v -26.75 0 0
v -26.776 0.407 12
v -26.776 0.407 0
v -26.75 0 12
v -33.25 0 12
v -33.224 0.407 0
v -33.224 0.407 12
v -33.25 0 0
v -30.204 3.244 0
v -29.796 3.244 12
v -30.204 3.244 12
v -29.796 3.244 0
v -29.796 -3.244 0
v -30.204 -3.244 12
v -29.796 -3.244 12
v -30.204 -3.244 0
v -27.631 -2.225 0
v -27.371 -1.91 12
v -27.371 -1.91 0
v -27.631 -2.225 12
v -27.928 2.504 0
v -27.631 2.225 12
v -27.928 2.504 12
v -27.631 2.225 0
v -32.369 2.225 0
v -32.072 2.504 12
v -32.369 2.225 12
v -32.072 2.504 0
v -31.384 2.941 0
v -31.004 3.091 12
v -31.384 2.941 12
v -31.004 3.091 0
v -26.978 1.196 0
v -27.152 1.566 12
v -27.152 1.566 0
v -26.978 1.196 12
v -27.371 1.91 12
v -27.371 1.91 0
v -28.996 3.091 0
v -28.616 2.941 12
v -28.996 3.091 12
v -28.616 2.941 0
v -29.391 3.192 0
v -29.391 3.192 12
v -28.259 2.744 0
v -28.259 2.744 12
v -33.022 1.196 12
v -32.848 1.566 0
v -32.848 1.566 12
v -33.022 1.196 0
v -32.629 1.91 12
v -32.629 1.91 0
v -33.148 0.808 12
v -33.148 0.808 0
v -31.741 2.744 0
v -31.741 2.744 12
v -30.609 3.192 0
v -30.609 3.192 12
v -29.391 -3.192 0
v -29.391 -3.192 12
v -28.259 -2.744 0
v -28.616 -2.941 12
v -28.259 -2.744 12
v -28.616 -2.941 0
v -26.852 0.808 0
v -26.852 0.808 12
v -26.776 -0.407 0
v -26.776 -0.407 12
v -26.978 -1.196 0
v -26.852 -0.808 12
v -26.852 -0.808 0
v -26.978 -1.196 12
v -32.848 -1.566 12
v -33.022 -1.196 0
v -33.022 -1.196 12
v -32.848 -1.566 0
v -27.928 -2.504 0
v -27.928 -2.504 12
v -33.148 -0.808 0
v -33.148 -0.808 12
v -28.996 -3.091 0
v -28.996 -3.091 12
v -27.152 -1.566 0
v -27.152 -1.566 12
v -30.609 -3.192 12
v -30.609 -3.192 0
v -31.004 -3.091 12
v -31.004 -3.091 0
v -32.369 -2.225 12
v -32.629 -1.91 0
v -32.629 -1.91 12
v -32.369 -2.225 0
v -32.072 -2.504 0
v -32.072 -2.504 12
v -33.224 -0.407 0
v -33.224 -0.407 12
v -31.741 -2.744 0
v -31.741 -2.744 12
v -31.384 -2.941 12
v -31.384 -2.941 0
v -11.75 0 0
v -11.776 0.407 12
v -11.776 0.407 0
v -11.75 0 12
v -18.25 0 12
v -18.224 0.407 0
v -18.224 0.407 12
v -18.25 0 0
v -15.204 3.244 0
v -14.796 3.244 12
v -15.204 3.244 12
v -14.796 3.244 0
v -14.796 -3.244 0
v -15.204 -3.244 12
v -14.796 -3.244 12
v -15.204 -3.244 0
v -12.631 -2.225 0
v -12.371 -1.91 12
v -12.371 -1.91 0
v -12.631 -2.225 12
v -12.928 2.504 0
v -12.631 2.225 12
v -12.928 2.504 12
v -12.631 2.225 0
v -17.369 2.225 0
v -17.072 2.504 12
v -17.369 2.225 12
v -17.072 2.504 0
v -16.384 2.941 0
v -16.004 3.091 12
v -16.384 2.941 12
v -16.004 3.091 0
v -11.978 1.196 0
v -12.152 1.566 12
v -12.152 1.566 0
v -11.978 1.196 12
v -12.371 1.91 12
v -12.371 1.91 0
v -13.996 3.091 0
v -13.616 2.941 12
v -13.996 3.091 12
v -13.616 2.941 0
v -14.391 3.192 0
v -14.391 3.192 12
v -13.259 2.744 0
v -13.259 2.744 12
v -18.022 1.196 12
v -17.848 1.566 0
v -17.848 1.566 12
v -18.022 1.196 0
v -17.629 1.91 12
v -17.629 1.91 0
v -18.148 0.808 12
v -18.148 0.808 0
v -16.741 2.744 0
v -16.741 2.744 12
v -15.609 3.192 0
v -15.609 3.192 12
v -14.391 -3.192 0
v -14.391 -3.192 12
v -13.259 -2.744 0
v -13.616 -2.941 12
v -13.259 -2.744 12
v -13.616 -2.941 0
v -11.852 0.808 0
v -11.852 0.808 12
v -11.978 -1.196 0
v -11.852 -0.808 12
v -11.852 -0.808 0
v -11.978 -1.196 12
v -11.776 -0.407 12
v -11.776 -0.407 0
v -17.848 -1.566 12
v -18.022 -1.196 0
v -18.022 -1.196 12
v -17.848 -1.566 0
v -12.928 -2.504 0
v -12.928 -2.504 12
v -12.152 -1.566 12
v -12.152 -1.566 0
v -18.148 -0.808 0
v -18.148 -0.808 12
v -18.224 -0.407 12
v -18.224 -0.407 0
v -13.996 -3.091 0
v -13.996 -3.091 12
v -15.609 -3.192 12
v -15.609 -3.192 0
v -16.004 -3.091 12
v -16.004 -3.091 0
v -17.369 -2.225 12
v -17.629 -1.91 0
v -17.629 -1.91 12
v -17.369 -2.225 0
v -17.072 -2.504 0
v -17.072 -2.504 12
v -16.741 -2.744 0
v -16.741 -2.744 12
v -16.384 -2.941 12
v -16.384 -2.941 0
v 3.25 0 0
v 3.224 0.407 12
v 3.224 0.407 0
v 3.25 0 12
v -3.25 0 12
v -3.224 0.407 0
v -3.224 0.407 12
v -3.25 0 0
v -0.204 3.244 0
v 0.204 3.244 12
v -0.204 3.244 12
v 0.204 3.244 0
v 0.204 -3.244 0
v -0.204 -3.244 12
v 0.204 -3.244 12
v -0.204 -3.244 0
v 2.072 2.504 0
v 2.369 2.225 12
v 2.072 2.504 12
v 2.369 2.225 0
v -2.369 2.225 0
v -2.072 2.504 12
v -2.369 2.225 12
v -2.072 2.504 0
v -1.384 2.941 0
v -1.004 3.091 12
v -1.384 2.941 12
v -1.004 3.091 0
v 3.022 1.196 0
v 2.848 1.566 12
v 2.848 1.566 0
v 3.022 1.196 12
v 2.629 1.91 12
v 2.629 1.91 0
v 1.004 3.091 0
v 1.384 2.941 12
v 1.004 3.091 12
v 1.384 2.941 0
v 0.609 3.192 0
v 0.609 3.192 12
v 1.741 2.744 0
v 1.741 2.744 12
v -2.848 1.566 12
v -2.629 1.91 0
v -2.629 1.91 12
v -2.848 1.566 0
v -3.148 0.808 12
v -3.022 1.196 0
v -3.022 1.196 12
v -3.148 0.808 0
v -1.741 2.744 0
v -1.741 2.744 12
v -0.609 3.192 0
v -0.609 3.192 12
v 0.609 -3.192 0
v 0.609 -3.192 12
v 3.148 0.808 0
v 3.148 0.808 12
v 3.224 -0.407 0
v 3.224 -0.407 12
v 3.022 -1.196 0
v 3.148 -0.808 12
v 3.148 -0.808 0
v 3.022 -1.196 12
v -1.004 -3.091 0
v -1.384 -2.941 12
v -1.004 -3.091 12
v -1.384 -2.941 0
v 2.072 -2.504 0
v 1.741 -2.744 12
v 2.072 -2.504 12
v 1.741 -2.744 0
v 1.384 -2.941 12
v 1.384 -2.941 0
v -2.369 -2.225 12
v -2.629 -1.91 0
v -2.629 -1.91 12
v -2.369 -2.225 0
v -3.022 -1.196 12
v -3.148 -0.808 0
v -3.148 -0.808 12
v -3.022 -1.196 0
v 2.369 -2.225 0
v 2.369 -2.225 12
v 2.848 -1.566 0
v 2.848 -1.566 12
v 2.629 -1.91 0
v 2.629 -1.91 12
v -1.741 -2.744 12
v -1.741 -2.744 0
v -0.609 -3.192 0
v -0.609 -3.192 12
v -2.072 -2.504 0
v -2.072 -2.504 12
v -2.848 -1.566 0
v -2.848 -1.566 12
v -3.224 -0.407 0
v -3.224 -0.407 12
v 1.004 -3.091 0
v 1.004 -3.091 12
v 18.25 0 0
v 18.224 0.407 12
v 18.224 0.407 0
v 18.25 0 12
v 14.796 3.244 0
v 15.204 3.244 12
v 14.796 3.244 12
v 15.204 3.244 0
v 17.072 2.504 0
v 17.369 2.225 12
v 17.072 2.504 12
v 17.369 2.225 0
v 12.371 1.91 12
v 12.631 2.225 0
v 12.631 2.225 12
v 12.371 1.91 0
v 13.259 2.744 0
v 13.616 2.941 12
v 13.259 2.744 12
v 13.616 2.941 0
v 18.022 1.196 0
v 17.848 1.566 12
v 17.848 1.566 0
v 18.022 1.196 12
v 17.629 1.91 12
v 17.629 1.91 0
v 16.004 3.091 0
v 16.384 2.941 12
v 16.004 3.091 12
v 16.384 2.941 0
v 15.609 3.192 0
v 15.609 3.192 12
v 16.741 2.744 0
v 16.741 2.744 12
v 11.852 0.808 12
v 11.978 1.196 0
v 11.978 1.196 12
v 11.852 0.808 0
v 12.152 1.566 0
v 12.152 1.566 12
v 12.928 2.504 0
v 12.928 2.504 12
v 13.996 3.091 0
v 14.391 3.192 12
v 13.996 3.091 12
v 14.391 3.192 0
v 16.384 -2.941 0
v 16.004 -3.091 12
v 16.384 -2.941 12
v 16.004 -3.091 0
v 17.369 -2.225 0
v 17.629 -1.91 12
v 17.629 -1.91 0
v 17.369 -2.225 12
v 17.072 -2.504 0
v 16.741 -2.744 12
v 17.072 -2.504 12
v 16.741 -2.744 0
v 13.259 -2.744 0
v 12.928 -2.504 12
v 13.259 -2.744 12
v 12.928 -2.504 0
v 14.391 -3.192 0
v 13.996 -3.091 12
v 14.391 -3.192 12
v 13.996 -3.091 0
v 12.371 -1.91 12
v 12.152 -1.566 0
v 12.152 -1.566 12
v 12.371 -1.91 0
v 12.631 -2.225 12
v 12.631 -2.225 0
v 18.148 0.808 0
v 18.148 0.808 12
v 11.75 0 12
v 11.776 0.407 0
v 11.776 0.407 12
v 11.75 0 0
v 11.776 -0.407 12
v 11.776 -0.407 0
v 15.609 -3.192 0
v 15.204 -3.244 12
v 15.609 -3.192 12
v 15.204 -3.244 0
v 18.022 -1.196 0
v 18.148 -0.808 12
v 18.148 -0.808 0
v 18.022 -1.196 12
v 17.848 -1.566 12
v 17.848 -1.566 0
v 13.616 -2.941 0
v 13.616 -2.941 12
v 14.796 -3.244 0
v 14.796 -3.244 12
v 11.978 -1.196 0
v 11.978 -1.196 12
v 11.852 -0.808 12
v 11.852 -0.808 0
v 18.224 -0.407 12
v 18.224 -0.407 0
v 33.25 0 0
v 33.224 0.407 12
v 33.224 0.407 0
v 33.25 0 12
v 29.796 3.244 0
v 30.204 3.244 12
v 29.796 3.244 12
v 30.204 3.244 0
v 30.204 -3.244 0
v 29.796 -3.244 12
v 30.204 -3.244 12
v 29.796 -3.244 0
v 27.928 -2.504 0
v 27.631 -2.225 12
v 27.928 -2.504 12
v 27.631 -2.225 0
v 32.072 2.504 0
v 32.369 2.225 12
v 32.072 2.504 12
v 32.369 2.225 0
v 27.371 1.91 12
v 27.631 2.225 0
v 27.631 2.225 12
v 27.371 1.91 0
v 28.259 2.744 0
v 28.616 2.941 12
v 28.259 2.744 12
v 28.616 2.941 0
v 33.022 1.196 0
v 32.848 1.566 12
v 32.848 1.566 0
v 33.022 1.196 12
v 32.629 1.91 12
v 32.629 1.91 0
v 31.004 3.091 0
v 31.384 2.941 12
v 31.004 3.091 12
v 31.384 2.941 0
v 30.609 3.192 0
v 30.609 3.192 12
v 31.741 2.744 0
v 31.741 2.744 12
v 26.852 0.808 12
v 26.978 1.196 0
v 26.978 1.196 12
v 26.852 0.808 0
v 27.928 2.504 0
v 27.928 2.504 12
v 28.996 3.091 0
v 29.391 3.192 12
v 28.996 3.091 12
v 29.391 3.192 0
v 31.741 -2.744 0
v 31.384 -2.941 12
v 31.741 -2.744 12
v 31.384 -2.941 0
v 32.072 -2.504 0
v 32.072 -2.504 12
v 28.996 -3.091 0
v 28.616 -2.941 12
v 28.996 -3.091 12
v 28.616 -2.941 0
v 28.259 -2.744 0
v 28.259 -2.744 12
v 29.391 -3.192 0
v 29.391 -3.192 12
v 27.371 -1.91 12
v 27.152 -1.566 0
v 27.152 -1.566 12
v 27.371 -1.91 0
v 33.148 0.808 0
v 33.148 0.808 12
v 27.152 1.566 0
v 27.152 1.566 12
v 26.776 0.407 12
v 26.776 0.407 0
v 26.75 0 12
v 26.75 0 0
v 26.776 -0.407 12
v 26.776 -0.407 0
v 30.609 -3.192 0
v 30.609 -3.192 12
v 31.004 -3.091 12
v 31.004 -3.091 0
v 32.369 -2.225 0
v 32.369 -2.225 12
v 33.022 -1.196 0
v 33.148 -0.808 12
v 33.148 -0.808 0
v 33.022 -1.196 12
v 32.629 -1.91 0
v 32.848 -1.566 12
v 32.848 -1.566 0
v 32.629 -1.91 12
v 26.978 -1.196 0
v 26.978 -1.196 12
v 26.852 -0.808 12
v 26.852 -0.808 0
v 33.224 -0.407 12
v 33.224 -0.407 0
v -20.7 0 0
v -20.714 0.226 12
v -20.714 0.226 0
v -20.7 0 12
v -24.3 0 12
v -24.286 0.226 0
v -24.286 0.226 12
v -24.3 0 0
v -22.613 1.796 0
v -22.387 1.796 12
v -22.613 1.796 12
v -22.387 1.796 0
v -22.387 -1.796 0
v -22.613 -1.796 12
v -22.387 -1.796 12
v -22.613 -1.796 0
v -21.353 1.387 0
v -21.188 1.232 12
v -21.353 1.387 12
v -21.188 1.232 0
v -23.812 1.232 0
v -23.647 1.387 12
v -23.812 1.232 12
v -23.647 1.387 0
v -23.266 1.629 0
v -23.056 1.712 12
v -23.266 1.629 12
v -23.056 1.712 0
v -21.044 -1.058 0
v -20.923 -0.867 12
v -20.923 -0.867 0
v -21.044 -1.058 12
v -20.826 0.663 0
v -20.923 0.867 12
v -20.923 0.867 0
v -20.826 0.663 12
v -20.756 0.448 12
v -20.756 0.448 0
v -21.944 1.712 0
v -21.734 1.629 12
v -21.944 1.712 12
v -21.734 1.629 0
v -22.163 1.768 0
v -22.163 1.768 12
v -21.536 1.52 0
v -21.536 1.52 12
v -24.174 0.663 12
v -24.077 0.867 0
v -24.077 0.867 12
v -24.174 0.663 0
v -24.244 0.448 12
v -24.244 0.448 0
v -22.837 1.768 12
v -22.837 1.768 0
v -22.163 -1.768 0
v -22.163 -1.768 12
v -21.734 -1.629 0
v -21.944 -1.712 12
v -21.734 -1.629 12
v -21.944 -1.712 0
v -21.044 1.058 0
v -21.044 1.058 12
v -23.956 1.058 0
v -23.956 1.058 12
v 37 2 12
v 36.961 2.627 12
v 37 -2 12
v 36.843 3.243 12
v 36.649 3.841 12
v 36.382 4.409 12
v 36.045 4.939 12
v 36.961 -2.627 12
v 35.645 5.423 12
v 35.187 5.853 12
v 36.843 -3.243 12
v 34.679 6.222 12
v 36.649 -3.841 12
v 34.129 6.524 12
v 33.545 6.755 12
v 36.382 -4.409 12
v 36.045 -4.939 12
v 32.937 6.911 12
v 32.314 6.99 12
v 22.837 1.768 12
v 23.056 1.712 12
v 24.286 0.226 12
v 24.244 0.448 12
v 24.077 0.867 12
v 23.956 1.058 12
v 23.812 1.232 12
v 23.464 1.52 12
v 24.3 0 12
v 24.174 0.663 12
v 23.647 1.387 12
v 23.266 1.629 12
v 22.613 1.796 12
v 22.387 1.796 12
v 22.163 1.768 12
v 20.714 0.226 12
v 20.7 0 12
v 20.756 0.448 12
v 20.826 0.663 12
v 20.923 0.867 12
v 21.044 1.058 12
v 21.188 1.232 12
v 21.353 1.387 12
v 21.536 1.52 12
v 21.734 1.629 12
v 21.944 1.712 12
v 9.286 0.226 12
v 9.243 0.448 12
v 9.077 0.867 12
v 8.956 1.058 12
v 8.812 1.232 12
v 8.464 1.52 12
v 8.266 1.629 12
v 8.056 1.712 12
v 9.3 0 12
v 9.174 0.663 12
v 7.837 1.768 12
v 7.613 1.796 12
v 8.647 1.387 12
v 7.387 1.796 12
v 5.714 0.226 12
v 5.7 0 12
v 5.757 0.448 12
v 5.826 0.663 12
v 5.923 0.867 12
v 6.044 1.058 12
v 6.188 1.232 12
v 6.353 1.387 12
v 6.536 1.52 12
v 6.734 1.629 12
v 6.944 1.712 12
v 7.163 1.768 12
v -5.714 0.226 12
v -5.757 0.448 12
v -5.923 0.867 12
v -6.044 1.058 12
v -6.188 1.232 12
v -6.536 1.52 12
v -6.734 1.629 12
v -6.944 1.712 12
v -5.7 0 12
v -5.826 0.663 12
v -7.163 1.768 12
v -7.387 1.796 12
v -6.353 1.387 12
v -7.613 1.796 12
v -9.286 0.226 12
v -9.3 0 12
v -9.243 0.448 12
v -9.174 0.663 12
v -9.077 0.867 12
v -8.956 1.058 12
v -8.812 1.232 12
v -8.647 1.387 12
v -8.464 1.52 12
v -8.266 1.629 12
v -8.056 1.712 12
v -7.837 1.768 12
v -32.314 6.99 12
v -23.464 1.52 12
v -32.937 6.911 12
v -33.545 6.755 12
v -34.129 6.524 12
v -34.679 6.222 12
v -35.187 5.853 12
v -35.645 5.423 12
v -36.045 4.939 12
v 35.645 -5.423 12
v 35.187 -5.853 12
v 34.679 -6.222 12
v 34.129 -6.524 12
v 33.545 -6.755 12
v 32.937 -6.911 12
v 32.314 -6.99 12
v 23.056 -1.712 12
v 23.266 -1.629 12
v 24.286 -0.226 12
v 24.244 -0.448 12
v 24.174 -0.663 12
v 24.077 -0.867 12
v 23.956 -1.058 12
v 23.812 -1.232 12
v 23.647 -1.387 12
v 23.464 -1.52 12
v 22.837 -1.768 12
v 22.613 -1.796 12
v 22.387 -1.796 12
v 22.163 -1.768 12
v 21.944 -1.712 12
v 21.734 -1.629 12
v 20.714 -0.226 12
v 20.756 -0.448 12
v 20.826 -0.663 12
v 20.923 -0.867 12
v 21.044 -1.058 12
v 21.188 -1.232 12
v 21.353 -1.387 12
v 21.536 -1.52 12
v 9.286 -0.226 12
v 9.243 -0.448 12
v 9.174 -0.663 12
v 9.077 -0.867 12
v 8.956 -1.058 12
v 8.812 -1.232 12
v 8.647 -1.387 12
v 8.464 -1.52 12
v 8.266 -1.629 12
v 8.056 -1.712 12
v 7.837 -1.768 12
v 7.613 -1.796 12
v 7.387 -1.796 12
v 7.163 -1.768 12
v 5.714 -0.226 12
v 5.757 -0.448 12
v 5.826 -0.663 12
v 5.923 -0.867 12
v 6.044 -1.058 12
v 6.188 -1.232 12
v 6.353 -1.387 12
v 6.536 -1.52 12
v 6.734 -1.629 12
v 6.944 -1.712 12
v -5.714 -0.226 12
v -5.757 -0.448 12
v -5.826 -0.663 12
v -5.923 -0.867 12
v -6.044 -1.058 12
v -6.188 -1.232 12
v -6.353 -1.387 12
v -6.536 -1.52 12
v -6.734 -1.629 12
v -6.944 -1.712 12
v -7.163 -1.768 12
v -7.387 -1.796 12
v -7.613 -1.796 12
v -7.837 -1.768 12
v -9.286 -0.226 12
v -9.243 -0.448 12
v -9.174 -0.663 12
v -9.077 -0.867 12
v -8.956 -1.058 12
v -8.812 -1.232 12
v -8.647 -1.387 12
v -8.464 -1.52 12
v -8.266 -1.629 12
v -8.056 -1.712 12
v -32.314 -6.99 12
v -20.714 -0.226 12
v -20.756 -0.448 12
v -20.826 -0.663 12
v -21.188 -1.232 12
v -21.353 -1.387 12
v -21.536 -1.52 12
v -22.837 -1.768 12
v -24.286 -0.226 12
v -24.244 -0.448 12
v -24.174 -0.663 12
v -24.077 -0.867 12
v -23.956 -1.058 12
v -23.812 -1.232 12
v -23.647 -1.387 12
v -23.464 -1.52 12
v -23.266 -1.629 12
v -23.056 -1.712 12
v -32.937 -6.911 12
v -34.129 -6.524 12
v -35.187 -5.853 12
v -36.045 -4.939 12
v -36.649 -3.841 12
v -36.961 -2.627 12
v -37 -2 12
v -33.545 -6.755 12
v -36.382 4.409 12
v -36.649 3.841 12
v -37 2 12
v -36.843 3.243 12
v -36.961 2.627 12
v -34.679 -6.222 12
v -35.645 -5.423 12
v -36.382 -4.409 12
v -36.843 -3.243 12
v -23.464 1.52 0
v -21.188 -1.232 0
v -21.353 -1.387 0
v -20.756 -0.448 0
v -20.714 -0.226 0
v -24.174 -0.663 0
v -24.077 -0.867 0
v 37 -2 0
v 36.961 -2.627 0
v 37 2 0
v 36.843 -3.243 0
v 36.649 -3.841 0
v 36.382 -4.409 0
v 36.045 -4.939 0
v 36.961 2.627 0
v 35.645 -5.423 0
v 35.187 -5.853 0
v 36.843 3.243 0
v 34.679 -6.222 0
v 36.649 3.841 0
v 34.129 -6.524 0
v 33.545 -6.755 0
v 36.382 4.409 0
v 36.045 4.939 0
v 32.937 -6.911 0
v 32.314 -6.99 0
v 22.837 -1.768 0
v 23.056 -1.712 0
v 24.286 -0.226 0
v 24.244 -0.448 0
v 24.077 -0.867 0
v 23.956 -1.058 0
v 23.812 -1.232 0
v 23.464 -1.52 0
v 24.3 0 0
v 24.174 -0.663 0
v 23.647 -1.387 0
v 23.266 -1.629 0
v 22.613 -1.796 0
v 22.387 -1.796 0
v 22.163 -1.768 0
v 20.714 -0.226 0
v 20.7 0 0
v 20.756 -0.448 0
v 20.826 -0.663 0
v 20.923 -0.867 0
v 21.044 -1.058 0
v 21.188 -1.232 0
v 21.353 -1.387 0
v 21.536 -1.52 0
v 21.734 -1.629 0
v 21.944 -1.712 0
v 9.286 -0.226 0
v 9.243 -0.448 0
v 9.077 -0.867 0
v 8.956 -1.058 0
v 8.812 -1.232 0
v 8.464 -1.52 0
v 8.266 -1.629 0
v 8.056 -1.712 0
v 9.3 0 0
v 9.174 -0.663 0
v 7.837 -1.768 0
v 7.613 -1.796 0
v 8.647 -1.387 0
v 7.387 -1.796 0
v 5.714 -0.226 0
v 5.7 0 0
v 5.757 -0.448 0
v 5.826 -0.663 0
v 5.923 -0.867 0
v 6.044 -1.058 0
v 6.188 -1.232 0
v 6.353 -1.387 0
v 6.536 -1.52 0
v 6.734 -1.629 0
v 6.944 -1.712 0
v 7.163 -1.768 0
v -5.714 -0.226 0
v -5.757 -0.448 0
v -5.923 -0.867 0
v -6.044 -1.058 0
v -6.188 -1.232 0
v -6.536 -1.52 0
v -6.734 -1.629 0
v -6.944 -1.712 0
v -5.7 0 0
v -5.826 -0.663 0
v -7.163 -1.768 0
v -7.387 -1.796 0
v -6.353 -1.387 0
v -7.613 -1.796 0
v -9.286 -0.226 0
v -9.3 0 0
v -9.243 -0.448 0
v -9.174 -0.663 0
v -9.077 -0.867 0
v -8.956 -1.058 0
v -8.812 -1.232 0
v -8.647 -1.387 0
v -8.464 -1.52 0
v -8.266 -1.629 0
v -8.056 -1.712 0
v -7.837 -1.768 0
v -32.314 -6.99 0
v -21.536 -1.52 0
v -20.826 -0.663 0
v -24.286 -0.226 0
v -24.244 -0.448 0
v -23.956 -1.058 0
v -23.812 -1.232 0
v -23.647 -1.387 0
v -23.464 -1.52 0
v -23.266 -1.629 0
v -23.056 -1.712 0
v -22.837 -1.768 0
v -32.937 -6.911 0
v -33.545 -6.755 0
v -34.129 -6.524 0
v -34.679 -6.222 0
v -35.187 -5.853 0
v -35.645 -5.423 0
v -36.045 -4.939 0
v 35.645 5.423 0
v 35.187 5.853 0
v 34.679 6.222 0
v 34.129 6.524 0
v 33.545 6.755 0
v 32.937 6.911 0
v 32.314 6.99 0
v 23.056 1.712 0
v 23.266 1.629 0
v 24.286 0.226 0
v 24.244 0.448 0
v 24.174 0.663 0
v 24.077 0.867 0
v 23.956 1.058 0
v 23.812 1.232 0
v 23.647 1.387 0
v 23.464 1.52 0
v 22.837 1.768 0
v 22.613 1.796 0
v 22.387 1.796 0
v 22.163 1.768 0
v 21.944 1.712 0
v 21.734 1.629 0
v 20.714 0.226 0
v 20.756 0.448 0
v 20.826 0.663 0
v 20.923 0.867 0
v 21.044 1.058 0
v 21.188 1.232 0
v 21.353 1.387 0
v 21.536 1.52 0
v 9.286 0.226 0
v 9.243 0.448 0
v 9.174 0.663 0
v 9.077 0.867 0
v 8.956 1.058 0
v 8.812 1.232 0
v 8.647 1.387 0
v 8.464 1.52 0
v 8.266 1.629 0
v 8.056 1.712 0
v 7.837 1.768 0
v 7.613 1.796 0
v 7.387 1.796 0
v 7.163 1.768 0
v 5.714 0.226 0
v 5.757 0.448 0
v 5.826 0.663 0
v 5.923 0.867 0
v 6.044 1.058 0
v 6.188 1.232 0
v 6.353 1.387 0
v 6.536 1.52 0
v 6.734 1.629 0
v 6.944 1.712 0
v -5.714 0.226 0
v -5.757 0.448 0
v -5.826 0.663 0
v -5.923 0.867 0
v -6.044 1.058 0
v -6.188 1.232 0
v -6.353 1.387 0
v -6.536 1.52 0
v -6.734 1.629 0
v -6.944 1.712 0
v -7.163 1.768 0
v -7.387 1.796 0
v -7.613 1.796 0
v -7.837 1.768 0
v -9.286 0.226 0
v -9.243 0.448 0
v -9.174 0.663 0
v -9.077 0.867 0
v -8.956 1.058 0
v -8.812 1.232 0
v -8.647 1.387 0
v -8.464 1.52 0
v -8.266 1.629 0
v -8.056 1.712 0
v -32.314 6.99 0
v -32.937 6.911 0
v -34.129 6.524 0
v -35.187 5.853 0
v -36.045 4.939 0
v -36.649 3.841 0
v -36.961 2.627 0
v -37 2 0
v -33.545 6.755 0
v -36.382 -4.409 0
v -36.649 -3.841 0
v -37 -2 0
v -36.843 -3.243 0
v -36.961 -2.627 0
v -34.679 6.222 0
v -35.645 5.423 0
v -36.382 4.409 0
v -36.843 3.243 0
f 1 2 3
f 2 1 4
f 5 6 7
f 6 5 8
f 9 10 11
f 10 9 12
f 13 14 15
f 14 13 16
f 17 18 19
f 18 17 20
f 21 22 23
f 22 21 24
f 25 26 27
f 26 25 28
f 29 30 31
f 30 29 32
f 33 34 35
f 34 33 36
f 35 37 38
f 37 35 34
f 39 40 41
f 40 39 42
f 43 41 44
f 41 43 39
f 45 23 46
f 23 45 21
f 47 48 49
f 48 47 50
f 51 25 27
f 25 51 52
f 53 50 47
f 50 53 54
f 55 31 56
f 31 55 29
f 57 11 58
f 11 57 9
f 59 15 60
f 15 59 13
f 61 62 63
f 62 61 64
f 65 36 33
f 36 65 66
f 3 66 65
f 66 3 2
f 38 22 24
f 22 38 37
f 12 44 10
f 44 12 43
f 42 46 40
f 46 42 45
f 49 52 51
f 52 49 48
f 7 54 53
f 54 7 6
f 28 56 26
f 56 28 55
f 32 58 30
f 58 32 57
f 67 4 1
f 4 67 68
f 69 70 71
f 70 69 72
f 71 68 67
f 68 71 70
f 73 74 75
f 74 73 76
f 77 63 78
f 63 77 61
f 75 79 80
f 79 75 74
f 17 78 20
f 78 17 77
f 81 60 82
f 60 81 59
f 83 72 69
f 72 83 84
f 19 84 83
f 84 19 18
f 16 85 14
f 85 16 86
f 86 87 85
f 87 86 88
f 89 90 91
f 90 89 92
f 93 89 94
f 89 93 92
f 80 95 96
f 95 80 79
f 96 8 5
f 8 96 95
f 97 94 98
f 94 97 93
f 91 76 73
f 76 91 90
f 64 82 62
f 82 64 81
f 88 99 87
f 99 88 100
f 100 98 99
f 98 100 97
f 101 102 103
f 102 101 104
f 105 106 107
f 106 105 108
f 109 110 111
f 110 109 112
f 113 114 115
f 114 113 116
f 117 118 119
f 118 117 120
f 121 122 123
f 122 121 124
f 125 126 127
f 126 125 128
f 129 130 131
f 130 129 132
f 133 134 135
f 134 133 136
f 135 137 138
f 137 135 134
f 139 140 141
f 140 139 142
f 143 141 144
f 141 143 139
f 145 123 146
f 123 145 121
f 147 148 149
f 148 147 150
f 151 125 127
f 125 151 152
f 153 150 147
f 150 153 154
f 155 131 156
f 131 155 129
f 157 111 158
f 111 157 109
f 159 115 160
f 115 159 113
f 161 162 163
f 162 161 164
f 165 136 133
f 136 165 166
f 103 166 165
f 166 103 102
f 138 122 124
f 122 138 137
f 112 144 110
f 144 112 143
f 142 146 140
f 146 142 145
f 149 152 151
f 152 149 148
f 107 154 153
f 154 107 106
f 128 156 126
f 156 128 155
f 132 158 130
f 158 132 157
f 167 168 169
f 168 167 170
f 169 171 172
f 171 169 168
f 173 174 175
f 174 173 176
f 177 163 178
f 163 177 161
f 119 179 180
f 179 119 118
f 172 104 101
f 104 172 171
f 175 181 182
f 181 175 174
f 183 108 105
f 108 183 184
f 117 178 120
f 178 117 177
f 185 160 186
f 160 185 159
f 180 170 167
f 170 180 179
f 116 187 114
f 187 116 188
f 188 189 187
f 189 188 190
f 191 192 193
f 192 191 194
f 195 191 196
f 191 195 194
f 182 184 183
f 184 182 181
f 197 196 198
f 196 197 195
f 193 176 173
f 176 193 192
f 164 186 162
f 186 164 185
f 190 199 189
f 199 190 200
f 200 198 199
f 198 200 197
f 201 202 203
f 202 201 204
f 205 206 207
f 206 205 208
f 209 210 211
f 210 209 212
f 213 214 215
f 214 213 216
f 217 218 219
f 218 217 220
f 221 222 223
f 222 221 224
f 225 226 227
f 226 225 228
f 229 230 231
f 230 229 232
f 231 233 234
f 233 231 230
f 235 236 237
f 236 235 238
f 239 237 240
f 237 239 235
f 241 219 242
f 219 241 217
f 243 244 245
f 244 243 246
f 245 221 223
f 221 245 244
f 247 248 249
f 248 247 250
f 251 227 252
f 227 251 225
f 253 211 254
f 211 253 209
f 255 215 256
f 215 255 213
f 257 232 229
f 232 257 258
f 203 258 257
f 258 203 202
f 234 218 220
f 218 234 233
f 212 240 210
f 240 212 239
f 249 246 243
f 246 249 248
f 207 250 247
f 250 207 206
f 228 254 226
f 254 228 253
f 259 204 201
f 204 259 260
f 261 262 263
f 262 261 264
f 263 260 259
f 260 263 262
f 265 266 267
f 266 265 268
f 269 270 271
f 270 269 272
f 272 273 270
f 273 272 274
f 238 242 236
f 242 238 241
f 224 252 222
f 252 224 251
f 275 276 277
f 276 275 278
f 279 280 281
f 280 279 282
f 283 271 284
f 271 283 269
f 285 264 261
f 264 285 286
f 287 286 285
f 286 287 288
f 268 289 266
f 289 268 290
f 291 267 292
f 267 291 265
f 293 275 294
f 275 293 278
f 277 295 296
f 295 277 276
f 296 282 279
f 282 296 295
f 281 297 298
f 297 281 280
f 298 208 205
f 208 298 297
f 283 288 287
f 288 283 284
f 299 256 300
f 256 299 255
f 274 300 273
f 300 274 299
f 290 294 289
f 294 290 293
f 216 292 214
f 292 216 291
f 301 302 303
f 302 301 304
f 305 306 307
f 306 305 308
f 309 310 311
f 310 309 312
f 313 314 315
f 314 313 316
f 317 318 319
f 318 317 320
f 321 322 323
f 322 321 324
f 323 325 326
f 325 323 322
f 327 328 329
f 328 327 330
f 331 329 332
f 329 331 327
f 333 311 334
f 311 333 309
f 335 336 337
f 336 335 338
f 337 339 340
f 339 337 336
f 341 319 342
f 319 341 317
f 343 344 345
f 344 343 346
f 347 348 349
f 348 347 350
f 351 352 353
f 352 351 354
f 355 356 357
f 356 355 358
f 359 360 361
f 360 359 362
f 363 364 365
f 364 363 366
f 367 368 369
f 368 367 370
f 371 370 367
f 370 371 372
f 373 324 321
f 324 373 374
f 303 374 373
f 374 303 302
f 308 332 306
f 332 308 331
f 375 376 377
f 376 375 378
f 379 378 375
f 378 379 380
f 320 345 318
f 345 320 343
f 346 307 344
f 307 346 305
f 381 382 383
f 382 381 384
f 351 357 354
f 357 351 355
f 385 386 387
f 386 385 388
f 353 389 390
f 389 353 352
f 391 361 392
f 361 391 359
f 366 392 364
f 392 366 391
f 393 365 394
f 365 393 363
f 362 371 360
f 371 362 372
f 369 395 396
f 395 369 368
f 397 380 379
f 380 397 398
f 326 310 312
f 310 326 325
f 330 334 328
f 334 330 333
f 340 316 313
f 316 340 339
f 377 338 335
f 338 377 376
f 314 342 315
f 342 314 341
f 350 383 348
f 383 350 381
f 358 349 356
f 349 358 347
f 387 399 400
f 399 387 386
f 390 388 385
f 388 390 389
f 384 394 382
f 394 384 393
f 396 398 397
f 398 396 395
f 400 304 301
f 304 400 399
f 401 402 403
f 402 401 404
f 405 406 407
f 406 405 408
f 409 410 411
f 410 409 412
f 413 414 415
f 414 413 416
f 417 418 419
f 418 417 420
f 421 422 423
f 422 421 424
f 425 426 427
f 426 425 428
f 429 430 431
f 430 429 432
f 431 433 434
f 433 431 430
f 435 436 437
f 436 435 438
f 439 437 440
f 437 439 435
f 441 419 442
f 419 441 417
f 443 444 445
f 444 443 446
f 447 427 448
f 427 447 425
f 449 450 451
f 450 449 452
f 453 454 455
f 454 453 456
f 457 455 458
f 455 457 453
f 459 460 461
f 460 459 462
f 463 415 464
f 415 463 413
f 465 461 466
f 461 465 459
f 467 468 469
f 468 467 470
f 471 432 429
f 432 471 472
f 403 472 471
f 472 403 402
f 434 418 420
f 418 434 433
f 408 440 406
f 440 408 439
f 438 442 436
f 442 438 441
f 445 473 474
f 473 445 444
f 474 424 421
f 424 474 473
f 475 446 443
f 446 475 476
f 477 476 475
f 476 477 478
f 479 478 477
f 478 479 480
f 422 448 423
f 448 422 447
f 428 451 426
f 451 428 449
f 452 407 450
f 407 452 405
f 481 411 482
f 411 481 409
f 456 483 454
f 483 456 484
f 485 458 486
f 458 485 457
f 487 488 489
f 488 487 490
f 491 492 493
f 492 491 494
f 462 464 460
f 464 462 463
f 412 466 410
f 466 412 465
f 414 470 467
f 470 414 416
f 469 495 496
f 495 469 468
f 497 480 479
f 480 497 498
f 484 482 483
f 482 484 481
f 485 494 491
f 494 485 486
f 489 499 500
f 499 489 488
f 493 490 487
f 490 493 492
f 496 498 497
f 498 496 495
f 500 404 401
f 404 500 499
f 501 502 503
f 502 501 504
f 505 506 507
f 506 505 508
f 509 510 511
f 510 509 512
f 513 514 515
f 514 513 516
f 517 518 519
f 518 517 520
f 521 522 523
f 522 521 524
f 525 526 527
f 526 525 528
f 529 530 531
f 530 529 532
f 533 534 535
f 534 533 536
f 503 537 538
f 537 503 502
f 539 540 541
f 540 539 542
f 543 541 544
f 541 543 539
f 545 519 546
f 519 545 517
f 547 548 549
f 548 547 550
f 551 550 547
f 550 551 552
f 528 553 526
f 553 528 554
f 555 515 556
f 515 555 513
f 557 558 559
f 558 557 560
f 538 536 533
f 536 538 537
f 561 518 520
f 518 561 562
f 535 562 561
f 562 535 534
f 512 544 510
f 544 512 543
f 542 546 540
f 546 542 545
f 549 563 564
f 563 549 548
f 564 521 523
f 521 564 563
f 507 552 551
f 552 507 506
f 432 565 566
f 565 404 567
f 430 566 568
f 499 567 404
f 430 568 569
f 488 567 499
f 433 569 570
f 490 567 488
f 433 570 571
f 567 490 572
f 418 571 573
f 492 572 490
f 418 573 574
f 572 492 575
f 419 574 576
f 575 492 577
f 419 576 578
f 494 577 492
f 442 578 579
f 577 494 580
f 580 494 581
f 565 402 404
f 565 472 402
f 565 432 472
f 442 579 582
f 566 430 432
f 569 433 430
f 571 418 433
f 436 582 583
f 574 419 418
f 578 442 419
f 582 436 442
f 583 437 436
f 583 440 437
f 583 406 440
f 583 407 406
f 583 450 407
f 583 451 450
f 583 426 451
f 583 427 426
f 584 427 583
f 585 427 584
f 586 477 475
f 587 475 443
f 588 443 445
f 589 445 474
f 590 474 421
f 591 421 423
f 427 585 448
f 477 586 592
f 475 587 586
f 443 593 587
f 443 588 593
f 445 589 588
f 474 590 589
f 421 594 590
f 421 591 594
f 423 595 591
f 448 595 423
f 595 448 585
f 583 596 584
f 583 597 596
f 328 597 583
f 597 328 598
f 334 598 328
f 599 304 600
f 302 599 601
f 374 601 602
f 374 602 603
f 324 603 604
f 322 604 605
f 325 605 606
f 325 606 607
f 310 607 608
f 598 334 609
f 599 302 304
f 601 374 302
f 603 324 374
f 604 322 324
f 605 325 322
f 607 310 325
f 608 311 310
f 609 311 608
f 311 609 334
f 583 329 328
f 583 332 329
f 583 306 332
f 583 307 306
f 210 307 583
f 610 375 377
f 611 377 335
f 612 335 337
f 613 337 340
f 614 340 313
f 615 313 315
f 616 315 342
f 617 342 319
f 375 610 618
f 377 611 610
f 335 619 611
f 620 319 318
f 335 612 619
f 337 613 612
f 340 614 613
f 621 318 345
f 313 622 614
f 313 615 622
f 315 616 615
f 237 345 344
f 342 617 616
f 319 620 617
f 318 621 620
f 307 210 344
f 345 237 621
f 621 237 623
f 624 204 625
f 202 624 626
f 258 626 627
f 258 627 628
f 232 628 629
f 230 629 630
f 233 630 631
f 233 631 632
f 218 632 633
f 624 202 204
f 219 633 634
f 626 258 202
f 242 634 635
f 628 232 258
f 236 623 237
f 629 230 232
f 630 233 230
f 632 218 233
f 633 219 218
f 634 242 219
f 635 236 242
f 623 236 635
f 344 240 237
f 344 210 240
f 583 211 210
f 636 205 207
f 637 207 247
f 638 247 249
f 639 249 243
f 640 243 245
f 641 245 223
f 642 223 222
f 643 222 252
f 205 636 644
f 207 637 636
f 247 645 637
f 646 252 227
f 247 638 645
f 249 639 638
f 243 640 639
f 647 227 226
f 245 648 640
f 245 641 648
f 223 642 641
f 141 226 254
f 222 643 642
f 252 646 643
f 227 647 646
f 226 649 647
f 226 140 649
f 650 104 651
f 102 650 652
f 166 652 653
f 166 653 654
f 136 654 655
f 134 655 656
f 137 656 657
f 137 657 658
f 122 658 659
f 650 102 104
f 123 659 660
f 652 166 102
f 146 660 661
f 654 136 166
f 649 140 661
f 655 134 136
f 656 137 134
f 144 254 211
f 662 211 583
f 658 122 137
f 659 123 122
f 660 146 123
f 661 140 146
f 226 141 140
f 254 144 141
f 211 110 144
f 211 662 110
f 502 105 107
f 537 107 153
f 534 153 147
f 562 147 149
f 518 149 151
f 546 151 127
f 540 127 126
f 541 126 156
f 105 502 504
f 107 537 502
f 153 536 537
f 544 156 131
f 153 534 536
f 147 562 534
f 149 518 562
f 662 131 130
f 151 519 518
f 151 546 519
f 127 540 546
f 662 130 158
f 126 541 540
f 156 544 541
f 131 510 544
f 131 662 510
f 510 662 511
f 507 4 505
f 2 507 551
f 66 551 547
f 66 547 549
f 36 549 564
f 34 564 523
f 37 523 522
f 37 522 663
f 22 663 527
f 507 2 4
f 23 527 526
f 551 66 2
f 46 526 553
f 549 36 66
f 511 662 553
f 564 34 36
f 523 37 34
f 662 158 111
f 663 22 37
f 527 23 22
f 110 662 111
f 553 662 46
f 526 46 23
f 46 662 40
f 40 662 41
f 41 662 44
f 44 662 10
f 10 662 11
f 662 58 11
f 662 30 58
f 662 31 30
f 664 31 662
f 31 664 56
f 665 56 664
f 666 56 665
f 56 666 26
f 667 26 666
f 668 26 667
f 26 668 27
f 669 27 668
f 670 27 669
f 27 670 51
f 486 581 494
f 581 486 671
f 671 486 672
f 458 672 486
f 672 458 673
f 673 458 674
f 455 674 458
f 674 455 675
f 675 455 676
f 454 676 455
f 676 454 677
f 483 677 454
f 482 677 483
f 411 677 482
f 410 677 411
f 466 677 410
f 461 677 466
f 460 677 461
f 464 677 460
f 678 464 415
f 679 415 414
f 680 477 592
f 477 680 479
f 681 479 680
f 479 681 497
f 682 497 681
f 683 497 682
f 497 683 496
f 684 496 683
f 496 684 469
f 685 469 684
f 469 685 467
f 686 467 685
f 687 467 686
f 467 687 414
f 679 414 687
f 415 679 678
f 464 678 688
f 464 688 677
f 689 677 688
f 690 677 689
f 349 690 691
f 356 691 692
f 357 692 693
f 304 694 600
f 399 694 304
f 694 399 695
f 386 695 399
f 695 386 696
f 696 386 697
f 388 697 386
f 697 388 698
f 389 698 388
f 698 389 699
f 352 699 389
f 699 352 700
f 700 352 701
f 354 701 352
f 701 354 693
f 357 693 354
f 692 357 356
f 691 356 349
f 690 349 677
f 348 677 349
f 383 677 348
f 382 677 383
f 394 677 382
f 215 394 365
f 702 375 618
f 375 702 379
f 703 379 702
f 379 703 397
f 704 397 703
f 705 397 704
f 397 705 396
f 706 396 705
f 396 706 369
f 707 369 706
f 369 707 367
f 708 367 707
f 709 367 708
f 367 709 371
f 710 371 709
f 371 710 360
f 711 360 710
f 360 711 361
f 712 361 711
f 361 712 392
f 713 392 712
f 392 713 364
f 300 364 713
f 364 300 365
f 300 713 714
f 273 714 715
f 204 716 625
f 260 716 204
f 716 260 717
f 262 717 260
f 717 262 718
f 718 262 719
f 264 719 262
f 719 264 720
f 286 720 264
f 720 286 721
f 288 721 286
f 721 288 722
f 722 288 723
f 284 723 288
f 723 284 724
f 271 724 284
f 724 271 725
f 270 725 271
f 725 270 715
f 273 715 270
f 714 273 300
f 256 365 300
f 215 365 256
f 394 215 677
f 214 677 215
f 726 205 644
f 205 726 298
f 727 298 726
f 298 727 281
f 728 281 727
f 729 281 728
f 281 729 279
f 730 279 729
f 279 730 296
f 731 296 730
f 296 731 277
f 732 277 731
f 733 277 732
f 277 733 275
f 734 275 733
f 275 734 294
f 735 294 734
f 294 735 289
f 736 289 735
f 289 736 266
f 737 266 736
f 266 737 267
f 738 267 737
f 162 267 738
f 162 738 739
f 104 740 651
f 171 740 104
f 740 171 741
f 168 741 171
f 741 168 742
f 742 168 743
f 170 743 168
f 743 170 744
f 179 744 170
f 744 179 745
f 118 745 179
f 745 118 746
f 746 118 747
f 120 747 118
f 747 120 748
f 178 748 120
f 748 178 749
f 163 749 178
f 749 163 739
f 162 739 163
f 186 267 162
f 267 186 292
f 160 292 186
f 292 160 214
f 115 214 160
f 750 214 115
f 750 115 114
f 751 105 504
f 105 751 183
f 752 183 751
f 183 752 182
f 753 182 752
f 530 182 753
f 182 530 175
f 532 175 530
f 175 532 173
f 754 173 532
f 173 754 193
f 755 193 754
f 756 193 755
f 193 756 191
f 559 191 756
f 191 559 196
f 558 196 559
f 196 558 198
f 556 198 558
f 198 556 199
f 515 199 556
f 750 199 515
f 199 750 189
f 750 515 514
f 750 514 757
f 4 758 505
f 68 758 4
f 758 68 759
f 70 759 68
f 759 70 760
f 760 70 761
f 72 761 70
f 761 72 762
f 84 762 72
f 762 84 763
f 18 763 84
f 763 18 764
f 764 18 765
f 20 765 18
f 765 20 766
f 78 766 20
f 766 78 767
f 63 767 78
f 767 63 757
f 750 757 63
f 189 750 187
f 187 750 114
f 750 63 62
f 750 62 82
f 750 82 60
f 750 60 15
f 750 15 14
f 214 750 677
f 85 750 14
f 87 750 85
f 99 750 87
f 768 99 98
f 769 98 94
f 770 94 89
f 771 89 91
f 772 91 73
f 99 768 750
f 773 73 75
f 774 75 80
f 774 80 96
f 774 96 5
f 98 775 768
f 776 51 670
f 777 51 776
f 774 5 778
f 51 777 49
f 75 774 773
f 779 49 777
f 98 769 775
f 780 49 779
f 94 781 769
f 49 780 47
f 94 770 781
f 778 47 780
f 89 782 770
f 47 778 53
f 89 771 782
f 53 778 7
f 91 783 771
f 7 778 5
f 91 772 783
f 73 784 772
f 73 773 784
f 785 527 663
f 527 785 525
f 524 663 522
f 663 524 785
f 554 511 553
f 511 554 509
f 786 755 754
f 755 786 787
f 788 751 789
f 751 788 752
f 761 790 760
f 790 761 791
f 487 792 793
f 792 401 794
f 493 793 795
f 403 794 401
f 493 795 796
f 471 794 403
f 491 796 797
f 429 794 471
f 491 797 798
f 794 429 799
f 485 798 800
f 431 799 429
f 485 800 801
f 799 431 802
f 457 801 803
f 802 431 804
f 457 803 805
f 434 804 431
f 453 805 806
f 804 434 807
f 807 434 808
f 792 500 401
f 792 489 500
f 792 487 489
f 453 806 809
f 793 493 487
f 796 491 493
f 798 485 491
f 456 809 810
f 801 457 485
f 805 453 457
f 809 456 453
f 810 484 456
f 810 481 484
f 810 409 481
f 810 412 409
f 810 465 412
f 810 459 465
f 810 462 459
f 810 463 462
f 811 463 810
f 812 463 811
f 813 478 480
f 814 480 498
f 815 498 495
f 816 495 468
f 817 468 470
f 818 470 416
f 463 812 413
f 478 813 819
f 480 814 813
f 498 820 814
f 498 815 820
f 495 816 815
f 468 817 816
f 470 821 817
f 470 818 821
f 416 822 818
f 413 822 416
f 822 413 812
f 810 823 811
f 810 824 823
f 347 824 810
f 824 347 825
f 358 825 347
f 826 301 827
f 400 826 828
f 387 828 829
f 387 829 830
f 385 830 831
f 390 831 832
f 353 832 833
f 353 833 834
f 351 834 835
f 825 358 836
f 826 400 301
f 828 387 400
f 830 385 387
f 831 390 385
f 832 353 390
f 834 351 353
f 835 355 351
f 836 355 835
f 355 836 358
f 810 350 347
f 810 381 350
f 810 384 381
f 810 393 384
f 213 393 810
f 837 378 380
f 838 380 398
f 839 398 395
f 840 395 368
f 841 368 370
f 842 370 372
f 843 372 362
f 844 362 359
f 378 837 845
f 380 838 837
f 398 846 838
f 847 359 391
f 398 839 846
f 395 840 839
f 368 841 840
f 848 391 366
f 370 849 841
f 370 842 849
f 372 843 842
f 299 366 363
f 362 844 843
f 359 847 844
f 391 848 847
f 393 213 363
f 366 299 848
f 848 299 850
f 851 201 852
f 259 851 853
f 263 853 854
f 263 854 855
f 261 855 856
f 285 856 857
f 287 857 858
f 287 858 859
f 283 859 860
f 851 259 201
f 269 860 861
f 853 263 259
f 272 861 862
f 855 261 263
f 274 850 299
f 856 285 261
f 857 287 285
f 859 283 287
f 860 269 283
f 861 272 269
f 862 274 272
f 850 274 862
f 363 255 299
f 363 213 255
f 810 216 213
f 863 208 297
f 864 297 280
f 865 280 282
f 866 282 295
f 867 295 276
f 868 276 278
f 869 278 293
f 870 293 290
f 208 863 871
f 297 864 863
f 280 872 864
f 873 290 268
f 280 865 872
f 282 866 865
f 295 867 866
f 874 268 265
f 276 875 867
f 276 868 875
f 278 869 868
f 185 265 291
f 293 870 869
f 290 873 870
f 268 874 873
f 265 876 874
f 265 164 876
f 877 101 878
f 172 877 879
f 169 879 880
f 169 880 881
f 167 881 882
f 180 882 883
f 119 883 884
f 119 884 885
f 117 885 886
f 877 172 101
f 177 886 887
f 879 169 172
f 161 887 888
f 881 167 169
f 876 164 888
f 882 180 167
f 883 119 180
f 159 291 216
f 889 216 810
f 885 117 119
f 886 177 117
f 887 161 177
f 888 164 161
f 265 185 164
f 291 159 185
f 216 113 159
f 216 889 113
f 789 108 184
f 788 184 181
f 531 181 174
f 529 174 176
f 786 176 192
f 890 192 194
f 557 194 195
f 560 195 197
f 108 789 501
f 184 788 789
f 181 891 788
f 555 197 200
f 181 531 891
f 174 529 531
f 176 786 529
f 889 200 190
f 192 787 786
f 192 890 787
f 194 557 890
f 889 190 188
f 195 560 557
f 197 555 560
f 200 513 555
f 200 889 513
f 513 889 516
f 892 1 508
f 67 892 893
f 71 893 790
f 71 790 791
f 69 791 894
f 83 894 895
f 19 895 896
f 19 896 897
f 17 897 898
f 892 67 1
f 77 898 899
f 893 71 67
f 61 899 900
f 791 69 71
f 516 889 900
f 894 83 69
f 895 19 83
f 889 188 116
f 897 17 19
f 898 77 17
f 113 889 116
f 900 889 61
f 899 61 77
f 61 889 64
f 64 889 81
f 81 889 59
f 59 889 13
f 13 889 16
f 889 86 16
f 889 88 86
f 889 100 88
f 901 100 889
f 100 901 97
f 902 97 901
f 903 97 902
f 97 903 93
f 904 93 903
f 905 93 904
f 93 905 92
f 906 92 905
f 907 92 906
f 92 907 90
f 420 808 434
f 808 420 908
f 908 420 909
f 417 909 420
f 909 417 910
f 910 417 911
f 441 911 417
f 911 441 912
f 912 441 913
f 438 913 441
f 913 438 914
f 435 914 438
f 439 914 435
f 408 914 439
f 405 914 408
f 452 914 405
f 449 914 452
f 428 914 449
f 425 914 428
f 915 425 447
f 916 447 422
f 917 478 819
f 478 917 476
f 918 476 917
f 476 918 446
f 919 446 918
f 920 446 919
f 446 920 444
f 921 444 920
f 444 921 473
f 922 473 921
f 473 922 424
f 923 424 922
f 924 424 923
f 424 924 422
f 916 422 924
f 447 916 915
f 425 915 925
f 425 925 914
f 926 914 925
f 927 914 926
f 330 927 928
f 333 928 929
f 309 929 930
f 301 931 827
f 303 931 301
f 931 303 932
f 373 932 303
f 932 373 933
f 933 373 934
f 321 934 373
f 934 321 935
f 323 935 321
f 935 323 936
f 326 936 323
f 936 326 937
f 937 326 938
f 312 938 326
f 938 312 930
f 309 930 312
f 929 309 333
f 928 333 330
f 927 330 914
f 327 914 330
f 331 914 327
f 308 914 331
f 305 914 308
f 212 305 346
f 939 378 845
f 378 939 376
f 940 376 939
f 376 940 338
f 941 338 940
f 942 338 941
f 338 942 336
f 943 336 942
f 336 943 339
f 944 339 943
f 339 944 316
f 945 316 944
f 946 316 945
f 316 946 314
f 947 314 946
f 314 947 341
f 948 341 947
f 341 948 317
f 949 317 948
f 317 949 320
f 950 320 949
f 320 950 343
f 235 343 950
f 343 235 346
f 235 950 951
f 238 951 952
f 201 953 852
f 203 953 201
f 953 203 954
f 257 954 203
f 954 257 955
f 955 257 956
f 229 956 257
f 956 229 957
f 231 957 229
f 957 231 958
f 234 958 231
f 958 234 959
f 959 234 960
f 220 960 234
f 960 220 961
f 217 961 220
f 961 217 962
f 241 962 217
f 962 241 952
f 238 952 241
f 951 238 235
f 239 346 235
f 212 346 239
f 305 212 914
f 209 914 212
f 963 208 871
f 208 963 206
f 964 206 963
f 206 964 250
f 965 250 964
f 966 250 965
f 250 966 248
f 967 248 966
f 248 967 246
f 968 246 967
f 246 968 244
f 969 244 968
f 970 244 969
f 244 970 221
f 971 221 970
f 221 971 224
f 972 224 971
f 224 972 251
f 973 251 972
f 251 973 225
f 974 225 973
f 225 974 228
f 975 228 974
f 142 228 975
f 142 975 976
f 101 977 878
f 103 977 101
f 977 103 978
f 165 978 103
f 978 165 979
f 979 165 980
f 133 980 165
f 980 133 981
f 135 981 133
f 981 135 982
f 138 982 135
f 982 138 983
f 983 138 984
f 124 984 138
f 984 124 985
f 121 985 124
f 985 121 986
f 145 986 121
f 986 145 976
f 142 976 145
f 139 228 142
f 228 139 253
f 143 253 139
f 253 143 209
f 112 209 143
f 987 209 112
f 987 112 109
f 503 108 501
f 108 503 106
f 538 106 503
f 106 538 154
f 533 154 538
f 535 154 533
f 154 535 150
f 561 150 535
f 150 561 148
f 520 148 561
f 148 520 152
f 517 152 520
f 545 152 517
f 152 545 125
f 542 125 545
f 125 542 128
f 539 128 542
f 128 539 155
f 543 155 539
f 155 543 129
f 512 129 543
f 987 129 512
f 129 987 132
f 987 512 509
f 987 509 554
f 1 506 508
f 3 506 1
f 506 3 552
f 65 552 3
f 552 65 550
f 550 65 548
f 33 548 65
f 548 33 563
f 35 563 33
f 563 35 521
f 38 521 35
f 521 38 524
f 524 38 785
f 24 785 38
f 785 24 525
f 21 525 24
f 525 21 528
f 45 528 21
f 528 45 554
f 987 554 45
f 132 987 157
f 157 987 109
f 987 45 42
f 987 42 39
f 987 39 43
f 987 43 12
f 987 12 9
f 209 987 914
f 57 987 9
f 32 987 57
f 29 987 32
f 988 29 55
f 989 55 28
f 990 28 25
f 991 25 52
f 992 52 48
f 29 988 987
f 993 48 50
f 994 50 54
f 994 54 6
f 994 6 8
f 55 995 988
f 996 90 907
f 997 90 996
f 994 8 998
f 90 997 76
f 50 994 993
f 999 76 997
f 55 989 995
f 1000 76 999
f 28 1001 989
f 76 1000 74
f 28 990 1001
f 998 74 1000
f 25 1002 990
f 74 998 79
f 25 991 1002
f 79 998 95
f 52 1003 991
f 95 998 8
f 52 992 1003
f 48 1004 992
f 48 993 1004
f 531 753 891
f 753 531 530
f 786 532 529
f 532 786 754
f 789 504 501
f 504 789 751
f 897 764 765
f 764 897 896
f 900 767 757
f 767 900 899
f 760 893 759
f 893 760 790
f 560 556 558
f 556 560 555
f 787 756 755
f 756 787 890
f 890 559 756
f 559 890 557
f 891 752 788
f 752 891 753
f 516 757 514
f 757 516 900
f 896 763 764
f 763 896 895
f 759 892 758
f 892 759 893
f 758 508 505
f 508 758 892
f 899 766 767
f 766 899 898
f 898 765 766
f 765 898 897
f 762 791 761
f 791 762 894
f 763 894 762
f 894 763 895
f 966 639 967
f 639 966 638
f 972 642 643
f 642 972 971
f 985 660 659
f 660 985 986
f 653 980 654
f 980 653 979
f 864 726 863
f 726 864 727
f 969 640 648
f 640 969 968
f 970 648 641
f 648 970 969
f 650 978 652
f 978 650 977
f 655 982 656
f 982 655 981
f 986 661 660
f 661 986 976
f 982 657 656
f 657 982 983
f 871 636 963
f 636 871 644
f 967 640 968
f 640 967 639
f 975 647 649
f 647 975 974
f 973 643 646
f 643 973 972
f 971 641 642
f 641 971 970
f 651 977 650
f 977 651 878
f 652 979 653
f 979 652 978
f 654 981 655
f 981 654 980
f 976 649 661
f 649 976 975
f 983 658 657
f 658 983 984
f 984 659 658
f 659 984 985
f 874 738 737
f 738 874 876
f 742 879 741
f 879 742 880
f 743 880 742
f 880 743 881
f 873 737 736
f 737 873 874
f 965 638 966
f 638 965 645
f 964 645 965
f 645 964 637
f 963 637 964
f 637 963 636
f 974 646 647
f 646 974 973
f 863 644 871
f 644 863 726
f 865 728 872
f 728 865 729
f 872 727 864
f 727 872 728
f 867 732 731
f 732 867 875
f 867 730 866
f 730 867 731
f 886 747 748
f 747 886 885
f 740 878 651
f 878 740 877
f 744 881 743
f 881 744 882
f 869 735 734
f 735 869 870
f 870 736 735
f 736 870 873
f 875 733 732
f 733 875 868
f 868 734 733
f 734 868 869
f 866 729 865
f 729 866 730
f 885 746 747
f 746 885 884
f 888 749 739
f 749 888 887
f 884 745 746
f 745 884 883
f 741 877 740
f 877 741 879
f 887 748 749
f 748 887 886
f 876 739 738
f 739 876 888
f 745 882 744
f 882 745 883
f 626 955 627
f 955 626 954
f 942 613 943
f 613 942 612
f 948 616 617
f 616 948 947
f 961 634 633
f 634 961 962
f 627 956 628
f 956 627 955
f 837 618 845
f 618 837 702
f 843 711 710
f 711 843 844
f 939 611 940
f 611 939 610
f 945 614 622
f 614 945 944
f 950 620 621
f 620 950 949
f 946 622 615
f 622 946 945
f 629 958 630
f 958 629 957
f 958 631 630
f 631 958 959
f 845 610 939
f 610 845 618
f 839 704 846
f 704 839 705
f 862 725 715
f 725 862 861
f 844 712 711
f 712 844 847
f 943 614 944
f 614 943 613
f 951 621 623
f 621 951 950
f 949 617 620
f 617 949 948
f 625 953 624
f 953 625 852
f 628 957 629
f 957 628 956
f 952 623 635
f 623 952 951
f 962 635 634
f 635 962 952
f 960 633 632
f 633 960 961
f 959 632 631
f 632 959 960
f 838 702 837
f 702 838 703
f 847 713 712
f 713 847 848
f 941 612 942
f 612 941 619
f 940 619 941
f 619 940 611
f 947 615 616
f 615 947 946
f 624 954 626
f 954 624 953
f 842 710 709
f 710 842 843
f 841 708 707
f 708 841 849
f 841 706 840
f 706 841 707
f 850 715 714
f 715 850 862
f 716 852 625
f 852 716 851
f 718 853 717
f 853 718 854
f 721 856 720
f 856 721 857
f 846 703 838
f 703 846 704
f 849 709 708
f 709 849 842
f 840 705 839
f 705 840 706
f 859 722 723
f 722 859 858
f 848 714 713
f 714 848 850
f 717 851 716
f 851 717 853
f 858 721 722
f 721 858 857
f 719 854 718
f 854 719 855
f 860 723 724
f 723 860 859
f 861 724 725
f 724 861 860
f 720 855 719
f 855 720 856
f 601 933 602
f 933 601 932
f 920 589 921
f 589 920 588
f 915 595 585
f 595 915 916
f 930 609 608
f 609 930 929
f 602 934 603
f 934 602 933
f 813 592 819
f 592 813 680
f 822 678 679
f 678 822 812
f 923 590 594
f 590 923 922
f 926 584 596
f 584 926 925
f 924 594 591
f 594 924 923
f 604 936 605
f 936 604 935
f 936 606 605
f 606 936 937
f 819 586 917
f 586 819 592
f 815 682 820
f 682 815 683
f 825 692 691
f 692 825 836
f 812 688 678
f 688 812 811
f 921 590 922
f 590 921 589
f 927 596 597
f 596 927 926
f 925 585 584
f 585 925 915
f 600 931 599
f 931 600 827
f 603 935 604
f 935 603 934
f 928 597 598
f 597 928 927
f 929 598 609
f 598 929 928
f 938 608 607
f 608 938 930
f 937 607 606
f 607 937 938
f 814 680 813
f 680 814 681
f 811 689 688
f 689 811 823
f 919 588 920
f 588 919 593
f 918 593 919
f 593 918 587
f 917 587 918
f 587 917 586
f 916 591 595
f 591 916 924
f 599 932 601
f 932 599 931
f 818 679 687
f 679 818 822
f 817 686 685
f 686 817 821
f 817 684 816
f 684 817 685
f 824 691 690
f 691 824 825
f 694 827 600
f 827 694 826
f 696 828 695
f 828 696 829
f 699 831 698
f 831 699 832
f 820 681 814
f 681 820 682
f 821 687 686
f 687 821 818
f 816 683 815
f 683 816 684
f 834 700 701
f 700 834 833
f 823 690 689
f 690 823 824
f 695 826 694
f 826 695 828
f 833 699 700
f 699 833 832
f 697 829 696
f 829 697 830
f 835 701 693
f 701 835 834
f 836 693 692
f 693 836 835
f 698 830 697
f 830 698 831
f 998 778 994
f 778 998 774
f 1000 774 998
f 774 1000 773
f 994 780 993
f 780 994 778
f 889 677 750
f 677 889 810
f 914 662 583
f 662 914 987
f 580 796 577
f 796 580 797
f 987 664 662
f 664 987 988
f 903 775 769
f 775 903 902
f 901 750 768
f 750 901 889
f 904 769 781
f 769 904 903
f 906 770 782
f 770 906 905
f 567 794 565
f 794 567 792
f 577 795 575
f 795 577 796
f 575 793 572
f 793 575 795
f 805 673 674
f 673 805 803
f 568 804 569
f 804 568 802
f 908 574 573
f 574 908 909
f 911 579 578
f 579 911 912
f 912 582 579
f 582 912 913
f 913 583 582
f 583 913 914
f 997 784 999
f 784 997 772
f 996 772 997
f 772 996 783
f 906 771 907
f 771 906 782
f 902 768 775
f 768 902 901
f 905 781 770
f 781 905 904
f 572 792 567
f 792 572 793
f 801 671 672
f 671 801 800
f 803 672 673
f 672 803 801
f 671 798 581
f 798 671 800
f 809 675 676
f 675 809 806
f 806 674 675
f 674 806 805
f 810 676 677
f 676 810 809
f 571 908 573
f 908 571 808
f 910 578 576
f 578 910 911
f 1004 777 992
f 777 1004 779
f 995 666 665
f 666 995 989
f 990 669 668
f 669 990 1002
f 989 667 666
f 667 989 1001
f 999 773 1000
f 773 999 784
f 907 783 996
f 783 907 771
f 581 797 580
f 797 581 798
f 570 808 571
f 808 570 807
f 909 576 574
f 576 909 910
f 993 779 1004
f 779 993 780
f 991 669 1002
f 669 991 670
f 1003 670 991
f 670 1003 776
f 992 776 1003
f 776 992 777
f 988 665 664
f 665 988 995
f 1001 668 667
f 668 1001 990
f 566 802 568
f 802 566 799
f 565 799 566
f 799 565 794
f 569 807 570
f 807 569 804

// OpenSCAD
$fn = 50;


difference() {
	union() {
		hull() {
			translate(v = [-32.0000000000, 2.0000000000, 0]) {
				cylinder(h = 12, r = 5);
			}
			translate(v = [32.0000000000, 2.0000000000, 0]) {
				cylinder(h = 12, r = 5);
			}
			translate(v = [-32.0000000000, -2.0000000000, 0]) {
				cylinder(h = 12, r = 5);
			}
			translate(v = [32.0000000000, -2.0000000000, 0]) {
				cylinder(h = 12, r = 5);
			}
		}
	}
	union() {
		translate(v = [-30.0000000000, 0.0000000000, -100.0000000000]) {
			cylinder(h = 200, r = 3.2500000000);
		}
		translate(v = [-15.0000000000, 0.0000000000, -100.0000000000]) {
			cylinder(h = 200, r = 3.2500000000);
		}
		translate(v = [0.0000000000, 0.0000000000, -100.0000000000]) {
			cylinder(h = 200, r = 3.2500000000);
		}
		translate(v = [15.0000000000, 0.0000000000, -100.0000000000]) {
			cylinder(h = 200, r = 3.2500000000);
		}
		translate(v = [30.0000000000, 0.0000000000, -100.0000000000]) {
			cylinder(h = 200, r = 3.2500000000);
		}
		translate(v = [-30.0000000000, 0.0000000000, 0]) {
			cylinder(h = 12, r = 1.8000000000);
		}
		translate(v = [-22.5000000000, 0.0000000000, 0]) {
			cylinder(h = 12, r = 1.8000000000);
		}
		translate(v = [-15.0000000000, 0.0000000000, 0]) {
			cylinder(h = 12, r = 1.8000000000);
		}
		translate(v = [-7.5000000000, 0.0000000000, 0]) {
			cylinder(h = 12, r = 1.8000000000);
		}
		cylinder(h = 12, r = 1.8000000000);
		translate(v = [7.5000000000, 0.0000000000, 0]) {
			cylinder(h = 12, r = 1.8000000000);
		}
		translate(v = [15.0000000000, 0.0000000000, 0]) {
			cylinder(h = 12, r = 1.8000000000);
		}
		translate(v = [22.5000000000, 0.0000000000, 0]) {
			cylinder(h = 12, r = 1.8000000000);
		}
		translate(v = [30.0000000000, 0.0000000000, 0]) {
			cylinder(h = 12, r = 1.8000000000);
		}
		translate(v = [-30.0000000000, 0.0000000000, 0]) {
			cylinder(h = 12, r = 1.8000000000);
		}
		translate(v = [-22.5000000000, 0.0000000000, 0]) {
			cylinder(h = 12, r = 1.8000000000);
		}
		translate(v = [-15.0000000000, 0.0000000000, 0]) {
			cylinder(h = 12, r = 1.8000000000);
		}
		translate(v = [-7.5000000000, 0.0000000000, 0]) {
			cylinder(h = 12, r = 1.8000000000);
		}
		cylinder(h = 12, r = 1.8000000000);
		translate(v = [7.5000000000, 0.0000000000, 0]) {
			cylinder(h = 12, r = 1.8000000000);
		}
		translate(v = [15.0000000000, 0.0000000000, 0]) {
			cylinder(h = 12, r = 1.8000000000);
		}
		translate(v = [22.5000000000, 0.0000000000, 0]) {
			cylinder(h = 12, r = 1.8000000000);
		}
		translate(v = [30.0000000000, 0.0000000000, 0]) {
			cylinder(h = 12, r = 1.8000000000);
		}
		translate(v = [-30.0000000000, 0.0000000000, 0]) {
			cylinder(h = 12, r = 1.8000000000);
		}
		translate(v = [-22.5000000000, 0.0000000000, 0]) {
			cylinder(h = 12, r = 1.8000000000);
		}
		translate(v = [-15.0000000000, 0.0000000000, 0]) {
			cylinder(h = 12, r = 1.8000000000);
		}
		translate(v = [-7.5000000000, 0.0000000000, 0]) {
			cylinder(h = 12, r = 1.8000000000);
		}
		cylinder(h = 12, r = 1.8000000000);
		translate(v = [7.5000000000, 0.0000000000, 0]) {
			cylinder(h = 12, r = 1.8000000000);
		}
		translate(v = [15.0000000000, 0.0000000000, 0]) {
			cylinder(h = 12, r = 1.8000000000);
		}
		translate(v = [22.5000000000, 0.0000000000, 0]) {
			cylinder(h = 12, r = 1.8000000000);
		}
		translate(v = [30.0000000000, 0.0000000000, 0]) {
			cylinder(h = 12, r = 1.8000000000);
		}
	}
}
